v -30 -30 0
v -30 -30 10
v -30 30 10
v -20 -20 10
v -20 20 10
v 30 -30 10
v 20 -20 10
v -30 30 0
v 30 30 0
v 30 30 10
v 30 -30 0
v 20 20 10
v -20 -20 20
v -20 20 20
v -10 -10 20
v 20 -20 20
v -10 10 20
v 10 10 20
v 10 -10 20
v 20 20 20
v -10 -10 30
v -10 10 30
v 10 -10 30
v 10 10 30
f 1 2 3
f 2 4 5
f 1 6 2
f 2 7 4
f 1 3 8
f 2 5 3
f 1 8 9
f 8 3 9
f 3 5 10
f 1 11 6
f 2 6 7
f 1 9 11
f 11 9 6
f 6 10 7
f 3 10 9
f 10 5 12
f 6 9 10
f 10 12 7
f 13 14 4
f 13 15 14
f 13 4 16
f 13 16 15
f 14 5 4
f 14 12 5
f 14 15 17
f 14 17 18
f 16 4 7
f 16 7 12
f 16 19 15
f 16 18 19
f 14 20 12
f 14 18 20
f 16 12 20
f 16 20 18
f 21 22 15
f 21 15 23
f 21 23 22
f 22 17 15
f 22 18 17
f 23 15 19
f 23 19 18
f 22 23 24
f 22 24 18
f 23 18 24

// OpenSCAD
module layer(size, z_center) {
    translate([0, 0, z_center])
        cube([size, size, 10], center=true);
}

layer(60, 5);
layer(40, 15);
layer(20, 25);
